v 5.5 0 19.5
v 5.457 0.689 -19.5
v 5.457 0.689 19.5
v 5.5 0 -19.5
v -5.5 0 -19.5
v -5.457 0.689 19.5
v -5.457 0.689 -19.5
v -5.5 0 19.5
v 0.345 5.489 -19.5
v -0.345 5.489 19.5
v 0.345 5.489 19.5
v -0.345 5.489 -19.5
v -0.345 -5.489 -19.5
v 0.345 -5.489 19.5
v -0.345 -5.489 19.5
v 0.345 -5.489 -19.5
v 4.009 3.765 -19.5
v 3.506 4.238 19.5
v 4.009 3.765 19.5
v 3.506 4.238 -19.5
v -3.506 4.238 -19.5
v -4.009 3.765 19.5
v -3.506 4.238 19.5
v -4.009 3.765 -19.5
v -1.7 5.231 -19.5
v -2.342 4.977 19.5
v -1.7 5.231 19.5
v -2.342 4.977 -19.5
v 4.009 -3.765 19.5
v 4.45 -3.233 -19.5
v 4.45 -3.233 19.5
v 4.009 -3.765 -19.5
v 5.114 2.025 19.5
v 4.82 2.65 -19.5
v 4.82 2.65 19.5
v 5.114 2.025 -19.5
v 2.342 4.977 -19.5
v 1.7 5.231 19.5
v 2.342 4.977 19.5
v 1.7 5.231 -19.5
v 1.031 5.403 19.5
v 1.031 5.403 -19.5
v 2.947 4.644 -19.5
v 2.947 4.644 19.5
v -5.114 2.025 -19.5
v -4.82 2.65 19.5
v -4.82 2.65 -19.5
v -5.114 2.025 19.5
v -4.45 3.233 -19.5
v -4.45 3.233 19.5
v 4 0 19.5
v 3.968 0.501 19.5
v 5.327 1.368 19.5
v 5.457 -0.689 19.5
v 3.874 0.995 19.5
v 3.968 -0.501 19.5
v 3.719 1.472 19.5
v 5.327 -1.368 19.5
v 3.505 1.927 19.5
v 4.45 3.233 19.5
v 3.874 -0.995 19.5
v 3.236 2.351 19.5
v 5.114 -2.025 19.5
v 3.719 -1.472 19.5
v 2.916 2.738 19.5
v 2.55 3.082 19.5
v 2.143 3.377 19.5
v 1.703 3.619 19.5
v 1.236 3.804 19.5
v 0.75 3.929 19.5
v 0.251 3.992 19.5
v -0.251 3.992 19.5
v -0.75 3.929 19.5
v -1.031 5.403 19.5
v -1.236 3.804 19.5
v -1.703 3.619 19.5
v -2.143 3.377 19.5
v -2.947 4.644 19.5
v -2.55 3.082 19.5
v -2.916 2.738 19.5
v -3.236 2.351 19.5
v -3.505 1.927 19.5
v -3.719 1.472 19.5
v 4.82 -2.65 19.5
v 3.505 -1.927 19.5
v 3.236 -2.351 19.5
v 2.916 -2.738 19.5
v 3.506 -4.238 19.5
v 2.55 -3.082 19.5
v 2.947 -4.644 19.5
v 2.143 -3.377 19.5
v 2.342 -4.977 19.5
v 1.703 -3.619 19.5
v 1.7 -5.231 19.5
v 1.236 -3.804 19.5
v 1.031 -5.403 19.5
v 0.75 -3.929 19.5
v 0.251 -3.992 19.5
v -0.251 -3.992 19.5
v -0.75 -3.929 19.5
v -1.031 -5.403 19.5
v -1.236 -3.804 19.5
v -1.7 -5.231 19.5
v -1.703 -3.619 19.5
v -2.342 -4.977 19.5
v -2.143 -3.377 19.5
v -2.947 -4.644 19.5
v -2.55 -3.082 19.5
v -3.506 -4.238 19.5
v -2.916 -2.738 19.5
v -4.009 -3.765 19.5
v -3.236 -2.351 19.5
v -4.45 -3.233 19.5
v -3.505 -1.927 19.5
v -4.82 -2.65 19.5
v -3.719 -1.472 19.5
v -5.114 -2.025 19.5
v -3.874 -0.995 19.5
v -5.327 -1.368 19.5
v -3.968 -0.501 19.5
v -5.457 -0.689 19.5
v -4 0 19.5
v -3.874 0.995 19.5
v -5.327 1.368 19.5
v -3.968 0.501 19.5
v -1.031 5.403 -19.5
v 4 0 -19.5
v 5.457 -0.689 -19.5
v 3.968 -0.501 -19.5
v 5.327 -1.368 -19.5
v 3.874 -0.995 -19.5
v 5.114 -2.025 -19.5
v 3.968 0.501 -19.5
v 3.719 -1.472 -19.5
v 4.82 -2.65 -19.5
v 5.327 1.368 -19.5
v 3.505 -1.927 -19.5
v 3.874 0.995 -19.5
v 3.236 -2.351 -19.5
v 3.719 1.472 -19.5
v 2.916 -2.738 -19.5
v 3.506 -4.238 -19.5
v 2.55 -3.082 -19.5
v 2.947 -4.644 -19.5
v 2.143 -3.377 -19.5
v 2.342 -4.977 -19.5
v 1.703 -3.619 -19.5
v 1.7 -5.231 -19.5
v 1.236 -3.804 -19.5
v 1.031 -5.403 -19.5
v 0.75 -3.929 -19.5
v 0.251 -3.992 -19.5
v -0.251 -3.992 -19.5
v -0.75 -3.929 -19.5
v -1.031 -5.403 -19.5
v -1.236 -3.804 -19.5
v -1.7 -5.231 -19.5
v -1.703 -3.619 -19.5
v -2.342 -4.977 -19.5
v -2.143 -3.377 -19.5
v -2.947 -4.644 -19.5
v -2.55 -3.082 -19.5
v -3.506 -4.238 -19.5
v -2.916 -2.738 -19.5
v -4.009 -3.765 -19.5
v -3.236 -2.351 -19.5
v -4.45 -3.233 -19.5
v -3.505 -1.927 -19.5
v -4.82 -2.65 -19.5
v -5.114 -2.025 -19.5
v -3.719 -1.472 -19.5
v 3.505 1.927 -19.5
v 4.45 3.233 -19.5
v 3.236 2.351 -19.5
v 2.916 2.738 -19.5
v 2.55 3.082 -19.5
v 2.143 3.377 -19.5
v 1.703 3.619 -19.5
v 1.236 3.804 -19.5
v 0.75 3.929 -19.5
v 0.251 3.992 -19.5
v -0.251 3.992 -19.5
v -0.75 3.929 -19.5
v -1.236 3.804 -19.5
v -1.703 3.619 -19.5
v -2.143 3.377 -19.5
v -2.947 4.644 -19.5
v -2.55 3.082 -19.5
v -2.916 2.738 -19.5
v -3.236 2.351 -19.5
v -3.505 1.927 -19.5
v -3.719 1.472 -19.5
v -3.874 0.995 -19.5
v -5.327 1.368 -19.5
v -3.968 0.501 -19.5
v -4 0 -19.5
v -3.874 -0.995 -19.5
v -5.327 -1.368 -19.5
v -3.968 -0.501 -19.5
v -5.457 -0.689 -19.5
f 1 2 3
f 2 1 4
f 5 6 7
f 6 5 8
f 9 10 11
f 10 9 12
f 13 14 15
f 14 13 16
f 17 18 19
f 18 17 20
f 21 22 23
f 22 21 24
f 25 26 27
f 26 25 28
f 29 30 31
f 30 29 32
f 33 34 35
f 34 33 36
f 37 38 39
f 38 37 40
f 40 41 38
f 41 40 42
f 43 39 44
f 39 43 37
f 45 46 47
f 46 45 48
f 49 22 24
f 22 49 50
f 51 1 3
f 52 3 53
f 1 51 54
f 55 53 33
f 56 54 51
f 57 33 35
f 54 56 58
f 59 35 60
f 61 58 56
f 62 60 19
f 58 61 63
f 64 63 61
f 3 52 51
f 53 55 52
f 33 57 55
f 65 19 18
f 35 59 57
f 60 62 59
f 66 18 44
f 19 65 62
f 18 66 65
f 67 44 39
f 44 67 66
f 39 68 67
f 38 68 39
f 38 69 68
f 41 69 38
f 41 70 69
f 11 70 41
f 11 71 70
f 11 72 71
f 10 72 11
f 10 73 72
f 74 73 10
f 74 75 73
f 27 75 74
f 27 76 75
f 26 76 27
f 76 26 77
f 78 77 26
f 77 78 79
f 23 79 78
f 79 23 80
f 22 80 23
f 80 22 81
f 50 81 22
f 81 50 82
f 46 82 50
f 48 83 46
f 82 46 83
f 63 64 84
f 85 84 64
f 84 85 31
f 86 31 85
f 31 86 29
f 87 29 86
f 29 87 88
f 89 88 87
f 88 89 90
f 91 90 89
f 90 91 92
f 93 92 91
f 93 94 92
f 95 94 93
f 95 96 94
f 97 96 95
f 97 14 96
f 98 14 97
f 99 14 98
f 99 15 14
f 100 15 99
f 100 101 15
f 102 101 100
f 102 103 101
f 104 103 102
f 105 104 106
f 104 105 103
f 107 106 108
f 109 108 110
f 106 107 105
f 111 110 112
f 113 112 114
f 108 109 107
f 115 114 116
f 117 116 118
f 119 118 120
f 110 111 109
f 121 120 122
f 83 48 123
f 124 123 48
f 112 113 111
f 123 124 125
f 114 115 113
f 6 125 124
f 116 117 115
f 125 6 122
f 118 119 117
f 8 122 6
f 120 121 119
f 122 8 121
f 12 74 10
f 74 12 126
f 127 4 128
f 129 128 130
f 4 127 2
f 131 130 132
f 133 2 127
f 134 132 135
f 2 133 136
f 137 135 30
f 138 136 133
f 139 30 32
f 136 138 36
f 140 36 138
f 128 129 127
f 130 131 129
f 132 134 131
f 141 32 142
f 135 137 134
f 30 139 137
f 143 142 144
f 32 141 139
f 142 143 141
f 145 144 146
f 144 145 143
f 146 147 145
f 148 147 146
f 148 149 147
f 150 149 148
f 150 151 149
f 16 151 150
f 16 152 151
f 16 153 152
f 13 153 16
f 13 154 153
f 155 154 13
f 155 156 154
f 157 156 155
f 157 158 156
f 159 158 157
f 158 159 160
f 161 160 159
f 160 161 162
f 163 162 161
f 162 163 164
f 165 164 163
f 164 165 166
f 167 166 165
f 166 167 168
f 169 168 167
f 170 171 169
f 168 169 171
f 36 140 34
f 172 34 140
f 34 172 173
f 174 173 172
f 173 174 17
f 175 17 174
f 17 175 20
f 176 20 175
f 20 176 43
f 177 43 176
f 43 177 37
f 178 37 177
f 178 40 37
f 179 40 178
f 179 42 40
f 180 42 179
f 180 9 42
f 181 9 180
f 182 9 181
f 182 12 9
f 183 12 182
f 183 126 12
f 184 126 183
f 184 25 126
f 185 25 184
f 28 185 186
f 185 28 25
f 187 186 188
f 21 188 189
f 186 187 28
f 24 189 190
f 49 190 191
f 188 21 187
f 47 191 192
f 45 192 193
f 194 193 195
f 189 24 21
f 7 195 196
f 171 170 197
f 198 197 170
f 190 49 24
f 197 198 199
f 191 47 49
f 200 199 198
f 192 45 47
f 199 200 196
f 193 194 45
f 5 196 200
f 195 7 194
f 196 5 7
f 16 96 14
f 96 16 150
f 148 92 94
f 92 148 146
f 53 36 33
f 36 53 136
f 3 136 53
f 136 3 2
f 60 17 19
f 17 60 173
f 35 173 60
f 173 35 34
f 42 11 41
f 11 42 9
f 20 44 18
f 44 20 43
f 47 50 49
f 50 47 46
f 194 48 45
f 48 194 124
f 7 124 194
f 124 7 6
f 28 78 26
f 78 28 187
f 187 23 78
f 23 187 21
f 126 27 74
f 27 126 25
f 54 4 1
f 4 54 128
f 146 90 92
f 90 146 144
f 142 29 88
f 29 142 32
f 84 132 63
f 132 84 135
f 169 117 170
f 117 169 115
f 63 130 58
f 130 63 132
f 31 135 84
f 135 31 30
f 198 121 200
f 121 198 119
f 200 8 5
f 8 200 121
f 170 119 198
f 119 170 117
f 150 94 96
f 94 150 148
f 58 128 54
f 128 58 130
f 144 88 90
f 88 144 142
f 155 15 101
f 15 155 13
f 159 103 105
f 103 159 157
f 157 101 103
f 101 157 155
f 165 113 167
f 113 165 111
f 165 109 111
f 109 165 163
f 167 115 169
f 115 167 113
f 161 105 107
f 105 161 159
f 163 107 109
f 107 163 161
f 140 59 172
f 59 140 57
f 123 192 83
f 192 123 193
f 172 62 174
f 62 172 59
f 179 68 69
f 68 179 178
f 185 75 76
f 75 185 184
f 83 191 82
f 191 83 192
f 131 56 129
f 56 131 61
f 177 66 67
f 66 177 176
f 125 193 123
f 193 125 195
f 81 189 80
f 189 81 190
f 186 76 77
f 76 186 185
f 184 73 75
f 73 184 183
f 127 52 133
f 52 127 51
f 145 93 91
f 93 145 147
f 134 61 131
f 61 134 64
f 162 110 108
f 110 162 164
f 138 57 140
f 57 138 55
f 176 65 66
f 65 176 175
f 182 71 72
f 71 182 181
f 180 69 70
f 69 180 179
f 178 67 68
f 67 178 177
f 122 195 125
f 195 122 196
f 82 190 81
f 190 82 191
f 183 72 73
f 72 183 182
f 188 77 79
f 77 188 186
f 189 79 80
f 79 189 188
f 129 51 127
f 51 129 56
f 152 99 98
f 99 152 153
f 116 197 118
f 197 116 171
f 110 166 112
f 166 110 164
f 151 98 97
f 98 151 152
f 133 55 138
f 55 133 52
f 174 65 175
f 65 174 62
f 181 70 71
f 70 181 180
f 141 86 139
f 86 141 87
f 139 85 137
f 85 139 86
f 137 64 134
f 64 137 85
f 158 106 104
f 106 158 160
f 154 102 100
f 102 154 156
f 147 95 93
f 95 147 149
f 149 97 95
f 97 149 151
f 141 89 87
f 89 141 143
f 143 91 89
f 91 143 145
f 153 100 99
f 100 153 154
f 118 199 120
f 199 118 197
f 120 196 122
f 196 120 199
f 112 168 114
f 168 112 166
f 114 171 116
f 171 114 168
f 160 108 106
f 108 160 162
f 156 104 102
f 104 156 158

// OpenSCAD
$fn = 50;


difference() {
	union() {
		translate(v = [0, 0, -19.5000000000]) {
			cylinder(h = 39, r = 5.5000000000);
		}
	}
	union() {
		translate(v = [0, 0, -100.0000000000]) {
			cylinder(h = 200, r = 4.0000000000);
		}
	}
}
